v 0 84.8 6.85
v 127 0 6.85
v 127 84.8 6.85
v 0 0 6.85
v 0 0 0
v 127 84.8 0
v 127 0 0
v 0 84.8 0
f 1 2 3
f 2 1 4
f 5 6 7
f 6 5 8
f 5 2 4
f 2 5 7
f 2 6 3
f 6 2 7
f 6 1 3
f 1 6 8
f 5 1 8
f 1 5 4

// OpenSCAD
// Corning Falcon 384 Well Microtest Plate 130 µL Lid
// loadName: corning_falcon_384_wellplate_130ul_flat_lid
// Auto-generated by labware_to_stl.py from Opentrons V2 labware definition

$fn = 32;

difference() {
    // ── Labware body ──────────────────────────────────────────────
    cube([127.0000, 84.8000, 6.8500]);

    // ── Well cutouts ──────────────────────────────────────────────
}
